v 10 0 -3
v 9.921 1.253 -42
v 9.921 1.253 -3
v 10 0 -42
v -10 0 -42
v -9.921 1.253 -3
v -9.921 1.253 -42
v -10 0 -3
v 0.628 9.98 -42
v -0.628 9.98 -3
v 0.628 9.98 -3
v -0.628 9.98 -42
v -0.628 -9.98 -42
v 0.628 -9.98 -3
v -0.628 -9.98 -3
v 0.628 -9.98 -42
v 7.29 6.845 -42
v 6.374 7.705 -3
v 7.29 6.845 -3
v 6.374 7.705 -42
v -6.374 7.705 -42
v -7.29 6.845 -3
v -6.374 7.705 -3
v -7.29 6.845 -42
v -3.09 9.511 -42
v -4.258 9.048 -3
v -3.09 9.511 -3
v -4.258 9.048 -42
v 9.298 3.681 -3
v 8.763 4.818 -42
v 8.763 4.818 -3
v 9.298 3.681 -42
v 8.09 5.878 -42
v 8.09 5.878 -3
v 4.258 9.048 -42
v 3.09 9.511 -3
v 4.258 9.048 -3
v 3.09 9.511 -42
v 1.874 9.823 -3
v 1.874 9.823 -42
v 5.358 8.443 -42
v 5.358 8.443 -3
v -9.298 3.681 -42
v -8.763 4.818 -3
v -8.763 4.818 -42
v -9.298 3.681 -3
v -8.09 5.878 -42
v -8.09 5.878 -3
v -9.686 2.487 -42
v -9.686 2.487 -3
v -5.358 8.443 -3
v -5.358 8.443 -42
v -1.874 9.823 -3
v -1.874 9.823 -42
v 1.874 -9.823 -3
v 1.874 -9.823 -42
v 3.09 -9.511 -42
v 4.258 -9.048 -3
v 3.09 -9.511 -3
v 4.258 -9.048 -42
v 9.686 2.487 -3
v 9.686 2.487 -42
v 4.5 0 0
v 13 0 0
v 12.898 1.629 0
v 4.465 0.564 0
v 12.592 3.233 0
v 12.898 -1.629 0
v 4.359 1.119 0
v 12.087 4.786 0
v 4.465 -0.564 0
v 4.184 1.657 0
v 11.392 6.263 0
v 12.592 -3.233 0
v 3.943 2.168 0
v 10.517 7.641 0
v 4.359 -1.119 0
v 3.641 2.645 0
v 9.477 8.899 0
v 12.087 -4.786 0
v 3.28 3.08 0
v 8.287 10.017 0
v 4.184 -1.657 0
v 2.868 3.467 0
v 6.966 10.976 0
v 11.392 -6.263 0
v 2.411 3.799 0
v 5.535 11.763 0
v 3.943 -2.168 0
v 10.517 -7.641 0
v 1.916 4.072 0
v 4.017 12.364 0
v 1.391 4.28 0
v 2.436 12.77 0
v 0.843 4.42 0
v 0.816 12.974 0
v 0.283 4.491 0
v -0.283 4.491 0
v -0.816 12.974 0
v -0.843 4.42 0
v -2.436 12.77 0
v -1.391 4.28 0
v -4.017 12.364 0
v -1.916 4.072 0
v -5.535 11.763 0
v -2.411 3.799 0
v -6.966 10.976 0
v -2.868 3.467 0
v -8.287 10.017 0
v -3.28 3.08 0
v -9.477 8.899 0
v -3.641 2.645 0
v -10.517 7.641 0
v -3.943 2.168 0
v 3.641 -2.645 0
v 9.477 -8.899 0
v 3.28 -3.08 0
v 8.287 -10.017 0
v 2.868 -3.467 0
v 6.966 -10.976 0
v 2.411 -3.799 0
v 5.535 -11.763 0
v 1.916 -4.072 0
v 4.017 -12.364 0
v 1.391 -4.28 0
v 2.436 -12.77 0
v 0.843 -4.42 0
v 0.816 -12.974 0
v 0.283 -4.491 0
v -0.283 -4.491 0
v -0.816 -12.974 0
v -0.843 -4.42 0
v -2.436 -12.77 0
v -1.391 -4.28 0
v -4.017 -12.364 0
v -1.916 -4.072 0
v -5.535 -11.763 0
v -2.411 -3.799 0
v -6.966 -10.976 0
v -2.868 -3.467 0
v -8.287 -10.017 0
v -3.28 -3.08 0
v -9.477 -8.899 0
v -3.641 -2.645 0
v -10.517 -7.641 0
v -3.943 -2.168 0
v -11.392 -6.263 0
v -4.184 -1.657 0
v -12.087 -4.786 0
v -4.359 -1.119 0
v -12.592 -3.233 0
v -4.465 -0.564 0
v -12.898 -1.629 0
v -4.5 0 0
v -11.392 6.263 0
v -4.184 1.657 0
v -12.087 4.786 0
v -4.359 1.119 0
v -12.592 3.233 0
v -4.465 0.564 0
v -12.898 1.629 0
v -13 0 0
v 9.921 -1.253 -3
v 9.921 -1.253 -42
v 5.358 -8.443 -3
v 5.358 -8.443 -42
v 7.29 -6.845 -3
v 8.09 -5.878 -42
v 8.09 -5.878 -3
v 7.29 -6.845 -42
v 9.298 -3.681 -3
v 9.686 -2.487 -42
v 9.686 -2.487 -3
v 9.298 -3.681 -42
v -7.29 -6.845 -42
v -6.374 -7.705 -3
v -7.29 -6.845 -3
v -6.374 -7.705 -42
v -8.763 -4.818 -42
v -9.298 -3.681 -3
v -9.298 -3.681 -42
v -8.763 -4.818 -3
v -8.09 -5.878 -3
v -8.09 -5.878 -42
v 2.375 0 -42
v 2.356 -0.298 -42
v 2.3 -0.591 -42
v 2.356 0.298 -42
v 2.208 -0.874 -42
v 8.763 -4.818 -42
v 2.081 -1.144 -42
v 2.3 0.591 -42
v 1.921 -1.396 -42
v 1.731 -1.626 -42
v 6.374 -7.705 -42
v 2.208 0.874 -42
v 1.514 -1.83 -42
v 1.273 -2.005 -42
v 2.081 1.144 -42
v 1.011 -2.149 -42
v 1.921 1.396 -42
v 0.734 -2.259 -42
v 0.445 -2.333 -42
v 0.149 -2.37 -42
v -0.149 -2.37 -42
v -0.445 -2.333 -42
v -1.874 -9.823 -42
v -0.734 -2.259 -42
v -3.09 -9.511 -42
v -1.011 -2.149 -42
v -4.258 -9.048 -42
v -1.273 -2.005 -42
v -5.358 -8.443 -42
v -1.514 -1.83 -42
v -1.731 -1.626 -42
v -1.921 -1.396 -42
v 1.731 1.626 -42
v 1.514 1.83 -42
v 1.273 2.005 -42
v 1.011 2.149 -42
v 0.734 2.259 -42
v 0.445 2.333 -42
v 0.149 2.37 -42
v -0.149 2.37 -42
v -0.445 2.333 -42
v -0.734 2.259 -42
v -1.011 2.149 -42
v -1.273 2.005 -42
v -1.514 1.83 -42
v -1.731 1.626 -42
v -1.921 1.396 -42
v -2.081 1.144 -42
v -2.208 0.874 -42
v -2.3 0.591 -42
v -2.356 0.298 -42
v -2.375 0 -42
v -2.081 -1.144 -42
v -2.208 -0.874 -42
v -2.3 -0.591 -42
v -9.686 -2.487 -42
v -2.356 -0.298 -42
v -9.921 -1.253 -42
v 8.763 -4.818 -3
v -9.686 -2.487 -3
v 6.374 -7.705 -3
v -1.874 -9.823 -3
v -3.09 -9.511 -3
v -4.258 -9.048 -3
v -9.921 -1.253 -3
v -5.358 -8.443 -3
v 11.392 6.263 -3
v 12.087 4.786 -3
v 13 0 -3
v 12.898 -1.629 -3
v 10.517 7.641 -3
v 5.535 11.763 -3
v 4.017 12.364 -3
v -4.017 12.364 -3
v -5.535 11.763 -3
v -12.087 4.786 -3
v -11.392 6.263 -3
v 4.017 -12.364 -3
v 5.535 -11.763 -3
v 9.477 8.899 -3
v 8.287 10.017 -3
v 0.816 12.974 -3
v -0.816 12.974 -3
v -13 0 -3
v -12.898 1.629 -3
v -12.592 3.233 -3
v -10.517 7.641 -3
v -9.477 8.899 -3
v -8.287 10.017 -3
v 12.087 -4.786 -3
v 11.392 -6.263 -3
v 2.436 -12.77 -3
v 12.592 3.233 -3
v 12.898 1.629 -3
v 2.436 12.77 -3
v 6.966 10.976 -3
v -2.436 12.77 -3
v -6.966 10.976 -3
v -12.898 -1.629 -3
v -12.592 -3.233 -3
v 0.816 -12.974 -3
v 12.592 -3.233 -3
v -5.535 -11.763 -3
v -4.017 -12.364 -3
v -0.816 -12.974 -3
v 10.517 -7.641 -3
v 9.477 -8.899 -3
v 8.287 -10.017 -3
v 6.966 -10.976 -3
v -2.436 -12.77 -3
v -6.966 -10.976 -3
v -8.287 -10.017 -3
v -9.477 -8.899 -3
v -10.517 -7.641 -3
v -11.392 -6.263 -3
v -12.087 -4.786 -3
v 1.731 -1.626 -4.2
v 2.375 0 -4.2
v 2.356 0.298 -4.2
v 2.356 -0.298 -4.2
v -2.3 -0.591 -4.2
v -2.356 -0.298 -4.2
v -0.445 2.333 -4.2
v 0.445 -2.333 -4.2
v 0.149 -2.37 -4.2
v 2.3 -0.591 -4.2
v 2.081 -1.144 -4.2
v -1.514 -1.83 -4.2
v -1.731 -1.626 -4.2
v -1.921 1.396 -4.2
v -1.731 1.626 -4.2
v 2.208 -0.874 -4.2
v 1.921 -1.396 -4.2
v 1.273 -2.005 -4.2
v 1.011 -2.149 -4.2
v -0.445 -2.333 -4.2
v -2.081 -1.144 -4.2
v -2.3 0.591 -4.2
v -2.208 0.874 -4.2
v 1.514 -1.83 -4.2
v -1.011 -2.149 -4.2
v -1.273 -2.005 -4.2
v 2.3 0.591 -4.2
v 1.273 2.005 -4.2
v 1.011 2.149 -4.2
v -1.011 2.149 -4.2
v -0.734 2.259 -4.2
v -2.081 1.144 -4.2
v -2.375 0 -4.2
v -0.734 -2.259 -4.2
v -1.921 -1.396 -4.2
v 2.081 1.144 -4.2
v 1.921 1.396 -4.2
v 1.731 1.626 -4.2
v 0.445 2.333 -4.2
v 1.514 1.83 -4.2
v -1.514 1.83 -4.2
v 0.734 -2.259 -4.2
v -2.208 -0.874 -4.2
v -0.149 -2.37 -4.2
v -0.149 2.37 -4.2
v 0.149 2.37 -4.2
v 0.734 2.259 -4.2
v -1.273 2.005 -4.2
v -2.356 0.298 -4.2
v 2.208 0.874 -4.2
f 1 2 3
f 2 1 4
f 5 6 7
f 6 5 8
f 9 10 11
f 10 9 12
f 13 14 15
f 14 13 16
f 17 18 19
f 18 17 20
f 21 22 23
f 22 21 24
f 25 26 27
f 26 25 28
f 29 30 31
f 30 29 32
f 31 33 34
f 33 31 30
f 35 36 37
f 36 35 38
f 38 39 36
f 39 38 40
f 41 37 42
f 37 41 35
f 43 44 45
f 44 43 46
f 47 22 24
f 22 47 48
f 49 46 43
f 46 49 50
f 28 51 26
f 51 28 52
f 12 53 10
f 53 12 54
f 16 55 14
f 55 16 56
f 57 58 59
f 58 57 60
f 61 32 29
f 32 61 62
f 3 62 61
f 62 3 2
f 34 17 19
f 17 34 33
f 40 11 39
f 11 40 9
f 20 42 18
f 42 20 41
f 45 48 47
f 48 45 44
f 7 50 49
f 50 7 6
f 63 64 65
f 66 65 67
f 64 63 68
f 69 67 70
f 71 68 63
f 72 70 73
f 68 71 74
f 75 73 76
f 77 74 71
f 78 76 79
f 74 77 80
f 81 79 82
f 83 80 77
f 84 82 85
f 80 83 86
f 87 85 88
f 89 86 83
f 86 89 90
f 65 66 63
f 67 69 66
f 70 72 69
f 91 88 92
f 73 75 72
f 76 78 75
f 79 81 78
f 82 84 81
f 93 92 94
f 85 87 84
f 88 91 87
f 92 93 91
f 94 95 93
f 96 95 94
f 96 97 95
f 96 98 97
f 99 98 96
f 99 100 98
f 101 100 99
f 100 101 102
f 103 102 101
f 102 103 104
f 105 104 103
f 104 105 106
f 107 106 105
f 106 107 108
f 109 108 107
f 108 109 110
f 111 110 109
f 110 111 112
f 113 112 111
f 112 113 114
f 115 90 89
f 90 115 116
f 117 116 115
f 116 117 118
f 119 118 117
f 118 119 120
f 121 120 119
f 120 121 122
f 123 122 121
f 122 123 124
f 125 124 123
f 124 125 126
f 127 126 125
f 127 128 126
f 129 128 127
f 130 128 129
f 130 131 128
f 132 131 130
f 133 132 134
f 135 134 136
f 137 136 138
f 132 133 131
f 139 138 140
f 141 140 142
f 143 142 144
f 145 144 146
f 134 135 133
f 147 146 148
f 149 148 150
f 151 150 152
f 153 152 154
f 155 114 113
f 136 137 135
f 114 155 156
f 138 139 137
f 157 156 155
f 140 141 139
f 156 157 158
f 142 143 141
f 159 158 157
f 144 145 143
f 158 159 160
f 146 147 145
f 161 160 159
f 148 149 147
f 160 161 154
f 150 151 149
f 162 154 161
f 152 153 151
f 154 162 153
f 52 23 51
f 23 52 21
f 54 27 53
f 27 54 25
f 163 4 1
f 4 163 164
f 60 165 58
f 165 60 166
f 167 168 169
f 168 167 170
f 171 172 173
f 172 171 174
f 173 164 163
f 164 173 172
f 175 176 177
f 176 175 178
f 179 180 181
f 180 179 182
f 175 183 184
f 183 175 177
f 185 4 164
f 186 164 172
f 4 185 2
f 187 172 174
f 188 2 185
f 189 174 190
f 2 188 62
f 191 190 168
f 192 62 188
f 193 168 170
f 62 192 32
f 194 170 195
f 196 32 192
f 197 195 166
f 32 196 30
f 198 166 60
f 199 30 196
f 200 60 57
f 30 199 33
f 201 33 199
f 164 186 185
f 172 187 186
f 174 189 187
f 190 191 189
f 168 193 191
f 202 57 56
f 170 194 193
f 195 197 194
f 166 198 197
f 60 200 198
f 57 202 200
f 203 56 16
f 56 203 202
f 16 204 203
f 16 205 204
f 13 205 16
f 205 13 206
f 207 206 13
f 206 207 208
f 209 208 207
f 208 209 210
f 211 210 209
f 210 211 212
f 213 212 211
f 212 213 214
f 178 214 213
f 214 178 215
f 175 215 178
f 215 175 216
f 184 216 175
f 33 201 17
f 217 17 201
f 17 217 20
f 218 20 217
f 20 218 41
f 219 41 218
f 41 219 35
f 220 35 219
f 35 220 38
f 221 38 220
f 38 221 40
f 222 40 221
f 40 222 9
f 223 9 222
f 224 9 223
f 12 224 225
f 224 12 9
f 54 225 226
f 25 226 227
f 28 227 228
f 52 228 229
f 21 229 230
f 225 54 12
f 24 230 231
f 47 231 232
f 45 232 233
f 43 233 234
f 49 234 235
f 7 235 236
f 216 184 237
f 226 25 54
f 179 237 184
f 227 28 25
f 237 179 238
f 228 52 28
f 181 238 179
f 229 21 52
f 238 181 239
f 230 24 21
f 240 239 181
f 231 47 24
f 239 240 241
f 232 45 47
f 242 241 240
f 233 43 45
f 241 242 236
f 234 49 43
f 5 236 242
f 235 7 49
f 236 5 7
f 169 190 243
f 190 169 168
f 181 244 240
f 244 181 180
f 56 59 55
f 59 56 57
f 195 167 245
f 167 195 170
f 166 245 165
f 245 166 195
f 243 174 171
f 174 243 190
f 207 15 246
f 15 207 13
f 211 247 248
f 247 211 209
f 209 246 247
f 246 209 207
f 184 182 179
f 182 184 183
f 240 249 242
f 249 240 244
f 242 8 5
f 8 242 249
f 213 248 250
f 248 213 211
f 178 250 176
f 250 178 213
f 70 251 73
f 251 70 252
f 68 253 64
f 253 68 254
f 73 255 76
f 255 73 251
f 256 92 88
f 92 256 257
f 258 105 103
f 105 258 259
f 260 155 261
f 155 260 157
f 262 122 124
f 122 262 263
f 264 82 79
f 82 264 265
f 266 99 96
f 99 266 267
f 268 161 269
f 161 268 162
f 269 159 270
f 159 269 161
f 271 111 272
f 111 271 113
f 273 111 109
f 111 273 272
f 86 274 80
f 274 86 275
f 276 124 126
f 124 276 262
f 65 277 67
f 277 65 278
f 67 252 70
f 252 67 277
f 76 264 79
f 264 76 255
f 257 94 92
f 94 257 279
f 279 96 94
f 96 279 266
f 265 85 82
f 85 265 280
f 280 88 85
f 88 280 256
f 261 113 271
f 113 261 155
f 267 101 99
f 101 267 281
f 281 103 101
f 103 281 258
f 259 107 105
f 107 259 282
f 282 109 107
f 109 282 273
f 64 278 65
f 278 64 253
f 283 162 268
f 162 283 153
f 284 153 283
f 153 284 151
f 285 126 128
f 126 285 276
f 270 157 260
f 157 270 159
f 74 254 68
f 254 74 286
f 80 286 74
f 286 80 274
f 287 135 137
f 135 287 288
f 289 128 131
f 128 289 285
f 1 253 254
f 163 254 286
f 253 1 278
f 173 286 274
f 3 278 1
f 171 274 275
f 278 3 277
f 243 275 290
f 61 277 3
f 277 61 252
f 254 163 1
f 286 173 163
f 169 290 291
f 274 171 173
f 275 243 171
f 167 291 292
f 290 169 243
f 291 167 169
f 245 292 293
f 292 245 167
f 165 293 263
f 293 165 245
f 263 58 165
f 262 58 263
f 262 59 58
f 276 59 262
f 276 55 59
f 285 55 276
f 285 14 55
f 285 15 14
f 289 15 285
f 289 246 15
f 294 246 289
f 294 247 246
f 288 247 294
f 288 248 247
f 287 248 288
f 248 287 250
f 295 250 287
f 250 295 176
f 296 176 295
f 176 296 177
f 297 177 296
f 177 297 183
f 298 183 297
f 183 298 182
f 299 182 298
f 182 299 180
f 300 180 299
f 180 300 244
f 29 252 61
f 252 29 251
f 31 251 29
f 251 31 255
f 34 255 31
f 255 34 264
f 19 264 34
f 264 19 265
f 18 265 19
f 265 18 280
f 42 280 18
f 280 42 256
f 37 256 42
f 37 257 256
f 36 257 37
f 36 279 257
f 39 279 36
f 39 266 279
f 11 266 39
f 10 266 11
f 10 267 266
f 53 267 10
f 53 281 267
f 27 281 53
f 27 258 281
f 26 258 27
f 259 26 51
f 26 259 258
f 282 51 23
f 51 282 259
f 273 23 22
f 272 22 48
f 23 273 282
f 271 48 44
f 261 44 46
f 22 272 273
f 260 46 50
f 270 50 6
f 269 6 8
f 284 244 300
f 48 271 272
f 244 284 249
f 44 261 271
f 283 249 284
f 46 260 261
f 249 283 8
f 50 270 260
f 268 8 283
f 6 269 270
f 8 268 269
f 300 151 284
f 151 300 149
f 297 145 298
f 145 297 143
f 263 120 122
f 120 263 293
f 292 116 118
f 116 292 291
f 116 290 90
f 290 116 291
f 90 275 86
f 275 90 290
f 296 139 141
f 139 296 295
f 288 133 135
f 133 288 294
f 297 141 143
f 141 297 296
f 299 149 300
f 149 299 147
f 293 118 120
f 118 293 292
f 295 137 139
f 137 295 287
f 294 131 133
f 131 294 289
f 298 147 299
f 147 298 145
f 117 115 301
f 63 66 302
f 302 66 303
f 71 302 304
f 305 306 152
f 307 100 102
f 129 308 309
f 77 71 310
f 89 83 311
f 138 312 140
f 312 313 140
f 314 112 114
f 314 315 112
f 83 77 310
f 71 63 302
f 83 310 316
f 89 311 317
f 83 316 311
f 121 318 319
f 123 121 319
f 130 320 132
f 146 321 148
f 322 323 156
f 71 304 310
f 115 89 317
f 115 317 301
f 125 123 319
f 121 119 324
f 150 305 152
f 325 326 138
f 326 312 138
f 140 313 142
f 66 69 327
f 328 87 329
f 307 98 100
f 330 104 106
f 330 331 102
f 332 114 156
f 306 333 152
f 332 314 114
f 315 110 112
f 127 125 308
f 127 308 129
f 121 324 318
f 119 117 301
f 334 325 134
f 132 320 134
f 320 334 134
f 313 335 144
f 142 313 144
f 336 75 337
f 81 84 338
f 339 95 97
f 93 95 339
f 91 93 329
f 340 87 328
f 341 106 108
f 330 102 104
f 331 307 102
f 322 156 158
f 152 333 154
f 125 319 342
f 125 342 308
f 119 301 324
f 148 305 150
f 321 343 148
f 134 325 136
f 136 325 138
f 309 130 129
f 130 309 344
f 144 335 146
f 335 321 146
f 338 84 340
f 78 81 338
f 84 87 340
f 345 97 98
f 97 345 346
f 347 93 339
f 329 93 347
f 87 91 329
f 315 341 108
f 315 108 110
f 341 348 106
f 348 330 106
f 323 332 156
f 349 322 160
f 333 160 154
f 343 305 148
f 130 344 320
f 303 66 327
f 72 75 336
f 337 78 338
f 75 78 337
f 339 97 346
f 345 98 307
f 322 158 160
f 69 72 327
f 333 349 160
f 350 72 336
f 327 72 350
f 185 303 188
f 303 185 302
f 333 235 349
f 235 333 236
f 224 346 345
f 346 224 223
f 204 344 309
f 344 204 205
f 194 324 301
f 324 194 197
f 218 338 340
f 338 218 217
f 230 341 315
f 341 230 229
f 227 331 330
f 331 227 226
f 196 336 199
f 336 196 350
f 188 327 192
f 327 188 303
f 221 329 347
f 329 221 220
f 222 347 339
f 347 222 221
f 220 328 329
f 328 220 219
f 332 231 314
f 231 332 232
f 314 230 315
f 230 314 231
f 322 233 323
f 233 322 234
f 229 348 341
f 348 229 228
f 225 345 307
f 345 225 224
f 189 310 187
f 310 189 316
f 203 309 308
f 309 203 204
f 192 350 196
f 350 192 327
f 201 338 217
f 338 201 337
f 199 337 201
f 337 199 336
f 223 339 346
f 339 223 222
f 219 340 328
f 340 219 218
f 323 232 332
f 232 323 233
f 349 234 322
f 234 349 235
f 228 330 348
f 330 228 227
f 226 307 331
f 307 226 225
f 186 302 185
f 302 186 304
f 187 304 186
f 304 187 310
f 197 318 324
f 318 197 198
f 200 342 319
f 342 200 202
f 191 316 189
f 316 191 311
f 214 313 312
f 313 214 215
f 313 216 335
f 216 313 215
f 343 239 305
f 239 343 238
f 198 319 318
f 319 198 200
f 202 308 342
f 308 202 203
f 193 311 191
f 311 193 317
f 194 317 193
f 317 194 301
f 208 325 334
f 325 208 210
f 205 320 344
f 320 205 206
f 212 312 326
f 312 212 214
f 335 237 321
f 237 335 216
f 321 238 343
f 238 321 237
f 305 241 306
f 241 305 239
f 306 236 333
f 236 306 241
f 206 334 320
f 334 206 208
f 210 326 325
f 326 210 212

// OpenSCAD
$fn = 50;


difference() {
	union() {
		translate(v = [0, 0, -42.0000000000]) {
			cylinder(h = 42, r = 10.0000000000);
		}
		translate(v = [0, 0, -3.0000000000]) {
			cylinder(h = 3, r = 13.0000000000);
		}
	}
	union() {
		translate(v = [0, 0, 0]) {
			rotate(a = [0, 0, 0]) {
				difference() {
					union() {
						#translate(v = [0, 0, -42.0000000000]) {
							cylinder(h = 42, r = 2.2500000000);
						}
						#translate(v = [0, 0, -4.2000000000]) {
							cylinder(h = 4.2000000000, r1 = 2.3750000000, r2 = 4.5000000000);
						}
						#translate(v = [0, 0, -42.0000000000]) {
							cylinder(h = 42, r = 2.3750000000);
						}
						#translate(v = [0, 0, -42.0000000000]) {
							cylinder(h = 42, r = 2.2500000000);
						}
					}
					union();
				}
			}
		}
	}
}
